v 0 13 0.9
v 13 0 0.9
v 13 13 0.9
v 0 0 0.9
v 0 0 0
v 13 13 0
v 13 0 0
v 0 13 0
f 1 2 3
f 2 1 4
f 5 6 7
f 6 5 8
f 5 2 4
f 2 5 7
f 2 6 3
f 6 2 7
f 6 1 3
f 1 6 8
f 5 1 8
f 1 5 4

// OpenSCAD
/* Warning, this is a very basic generator with a lot of approximation 
input data : [VQFN, PMX, 13x13x0.9mm, 164, , D, C04-00527D]
generated by com.zoubworld.electronics.cad.model3d.Basic
Date : Sun Feb 15 10:50:48 CET 2026
*/

//body
color("black")
translate([0,0,0])
cube([13.0,13.0,0.9], center=false);
